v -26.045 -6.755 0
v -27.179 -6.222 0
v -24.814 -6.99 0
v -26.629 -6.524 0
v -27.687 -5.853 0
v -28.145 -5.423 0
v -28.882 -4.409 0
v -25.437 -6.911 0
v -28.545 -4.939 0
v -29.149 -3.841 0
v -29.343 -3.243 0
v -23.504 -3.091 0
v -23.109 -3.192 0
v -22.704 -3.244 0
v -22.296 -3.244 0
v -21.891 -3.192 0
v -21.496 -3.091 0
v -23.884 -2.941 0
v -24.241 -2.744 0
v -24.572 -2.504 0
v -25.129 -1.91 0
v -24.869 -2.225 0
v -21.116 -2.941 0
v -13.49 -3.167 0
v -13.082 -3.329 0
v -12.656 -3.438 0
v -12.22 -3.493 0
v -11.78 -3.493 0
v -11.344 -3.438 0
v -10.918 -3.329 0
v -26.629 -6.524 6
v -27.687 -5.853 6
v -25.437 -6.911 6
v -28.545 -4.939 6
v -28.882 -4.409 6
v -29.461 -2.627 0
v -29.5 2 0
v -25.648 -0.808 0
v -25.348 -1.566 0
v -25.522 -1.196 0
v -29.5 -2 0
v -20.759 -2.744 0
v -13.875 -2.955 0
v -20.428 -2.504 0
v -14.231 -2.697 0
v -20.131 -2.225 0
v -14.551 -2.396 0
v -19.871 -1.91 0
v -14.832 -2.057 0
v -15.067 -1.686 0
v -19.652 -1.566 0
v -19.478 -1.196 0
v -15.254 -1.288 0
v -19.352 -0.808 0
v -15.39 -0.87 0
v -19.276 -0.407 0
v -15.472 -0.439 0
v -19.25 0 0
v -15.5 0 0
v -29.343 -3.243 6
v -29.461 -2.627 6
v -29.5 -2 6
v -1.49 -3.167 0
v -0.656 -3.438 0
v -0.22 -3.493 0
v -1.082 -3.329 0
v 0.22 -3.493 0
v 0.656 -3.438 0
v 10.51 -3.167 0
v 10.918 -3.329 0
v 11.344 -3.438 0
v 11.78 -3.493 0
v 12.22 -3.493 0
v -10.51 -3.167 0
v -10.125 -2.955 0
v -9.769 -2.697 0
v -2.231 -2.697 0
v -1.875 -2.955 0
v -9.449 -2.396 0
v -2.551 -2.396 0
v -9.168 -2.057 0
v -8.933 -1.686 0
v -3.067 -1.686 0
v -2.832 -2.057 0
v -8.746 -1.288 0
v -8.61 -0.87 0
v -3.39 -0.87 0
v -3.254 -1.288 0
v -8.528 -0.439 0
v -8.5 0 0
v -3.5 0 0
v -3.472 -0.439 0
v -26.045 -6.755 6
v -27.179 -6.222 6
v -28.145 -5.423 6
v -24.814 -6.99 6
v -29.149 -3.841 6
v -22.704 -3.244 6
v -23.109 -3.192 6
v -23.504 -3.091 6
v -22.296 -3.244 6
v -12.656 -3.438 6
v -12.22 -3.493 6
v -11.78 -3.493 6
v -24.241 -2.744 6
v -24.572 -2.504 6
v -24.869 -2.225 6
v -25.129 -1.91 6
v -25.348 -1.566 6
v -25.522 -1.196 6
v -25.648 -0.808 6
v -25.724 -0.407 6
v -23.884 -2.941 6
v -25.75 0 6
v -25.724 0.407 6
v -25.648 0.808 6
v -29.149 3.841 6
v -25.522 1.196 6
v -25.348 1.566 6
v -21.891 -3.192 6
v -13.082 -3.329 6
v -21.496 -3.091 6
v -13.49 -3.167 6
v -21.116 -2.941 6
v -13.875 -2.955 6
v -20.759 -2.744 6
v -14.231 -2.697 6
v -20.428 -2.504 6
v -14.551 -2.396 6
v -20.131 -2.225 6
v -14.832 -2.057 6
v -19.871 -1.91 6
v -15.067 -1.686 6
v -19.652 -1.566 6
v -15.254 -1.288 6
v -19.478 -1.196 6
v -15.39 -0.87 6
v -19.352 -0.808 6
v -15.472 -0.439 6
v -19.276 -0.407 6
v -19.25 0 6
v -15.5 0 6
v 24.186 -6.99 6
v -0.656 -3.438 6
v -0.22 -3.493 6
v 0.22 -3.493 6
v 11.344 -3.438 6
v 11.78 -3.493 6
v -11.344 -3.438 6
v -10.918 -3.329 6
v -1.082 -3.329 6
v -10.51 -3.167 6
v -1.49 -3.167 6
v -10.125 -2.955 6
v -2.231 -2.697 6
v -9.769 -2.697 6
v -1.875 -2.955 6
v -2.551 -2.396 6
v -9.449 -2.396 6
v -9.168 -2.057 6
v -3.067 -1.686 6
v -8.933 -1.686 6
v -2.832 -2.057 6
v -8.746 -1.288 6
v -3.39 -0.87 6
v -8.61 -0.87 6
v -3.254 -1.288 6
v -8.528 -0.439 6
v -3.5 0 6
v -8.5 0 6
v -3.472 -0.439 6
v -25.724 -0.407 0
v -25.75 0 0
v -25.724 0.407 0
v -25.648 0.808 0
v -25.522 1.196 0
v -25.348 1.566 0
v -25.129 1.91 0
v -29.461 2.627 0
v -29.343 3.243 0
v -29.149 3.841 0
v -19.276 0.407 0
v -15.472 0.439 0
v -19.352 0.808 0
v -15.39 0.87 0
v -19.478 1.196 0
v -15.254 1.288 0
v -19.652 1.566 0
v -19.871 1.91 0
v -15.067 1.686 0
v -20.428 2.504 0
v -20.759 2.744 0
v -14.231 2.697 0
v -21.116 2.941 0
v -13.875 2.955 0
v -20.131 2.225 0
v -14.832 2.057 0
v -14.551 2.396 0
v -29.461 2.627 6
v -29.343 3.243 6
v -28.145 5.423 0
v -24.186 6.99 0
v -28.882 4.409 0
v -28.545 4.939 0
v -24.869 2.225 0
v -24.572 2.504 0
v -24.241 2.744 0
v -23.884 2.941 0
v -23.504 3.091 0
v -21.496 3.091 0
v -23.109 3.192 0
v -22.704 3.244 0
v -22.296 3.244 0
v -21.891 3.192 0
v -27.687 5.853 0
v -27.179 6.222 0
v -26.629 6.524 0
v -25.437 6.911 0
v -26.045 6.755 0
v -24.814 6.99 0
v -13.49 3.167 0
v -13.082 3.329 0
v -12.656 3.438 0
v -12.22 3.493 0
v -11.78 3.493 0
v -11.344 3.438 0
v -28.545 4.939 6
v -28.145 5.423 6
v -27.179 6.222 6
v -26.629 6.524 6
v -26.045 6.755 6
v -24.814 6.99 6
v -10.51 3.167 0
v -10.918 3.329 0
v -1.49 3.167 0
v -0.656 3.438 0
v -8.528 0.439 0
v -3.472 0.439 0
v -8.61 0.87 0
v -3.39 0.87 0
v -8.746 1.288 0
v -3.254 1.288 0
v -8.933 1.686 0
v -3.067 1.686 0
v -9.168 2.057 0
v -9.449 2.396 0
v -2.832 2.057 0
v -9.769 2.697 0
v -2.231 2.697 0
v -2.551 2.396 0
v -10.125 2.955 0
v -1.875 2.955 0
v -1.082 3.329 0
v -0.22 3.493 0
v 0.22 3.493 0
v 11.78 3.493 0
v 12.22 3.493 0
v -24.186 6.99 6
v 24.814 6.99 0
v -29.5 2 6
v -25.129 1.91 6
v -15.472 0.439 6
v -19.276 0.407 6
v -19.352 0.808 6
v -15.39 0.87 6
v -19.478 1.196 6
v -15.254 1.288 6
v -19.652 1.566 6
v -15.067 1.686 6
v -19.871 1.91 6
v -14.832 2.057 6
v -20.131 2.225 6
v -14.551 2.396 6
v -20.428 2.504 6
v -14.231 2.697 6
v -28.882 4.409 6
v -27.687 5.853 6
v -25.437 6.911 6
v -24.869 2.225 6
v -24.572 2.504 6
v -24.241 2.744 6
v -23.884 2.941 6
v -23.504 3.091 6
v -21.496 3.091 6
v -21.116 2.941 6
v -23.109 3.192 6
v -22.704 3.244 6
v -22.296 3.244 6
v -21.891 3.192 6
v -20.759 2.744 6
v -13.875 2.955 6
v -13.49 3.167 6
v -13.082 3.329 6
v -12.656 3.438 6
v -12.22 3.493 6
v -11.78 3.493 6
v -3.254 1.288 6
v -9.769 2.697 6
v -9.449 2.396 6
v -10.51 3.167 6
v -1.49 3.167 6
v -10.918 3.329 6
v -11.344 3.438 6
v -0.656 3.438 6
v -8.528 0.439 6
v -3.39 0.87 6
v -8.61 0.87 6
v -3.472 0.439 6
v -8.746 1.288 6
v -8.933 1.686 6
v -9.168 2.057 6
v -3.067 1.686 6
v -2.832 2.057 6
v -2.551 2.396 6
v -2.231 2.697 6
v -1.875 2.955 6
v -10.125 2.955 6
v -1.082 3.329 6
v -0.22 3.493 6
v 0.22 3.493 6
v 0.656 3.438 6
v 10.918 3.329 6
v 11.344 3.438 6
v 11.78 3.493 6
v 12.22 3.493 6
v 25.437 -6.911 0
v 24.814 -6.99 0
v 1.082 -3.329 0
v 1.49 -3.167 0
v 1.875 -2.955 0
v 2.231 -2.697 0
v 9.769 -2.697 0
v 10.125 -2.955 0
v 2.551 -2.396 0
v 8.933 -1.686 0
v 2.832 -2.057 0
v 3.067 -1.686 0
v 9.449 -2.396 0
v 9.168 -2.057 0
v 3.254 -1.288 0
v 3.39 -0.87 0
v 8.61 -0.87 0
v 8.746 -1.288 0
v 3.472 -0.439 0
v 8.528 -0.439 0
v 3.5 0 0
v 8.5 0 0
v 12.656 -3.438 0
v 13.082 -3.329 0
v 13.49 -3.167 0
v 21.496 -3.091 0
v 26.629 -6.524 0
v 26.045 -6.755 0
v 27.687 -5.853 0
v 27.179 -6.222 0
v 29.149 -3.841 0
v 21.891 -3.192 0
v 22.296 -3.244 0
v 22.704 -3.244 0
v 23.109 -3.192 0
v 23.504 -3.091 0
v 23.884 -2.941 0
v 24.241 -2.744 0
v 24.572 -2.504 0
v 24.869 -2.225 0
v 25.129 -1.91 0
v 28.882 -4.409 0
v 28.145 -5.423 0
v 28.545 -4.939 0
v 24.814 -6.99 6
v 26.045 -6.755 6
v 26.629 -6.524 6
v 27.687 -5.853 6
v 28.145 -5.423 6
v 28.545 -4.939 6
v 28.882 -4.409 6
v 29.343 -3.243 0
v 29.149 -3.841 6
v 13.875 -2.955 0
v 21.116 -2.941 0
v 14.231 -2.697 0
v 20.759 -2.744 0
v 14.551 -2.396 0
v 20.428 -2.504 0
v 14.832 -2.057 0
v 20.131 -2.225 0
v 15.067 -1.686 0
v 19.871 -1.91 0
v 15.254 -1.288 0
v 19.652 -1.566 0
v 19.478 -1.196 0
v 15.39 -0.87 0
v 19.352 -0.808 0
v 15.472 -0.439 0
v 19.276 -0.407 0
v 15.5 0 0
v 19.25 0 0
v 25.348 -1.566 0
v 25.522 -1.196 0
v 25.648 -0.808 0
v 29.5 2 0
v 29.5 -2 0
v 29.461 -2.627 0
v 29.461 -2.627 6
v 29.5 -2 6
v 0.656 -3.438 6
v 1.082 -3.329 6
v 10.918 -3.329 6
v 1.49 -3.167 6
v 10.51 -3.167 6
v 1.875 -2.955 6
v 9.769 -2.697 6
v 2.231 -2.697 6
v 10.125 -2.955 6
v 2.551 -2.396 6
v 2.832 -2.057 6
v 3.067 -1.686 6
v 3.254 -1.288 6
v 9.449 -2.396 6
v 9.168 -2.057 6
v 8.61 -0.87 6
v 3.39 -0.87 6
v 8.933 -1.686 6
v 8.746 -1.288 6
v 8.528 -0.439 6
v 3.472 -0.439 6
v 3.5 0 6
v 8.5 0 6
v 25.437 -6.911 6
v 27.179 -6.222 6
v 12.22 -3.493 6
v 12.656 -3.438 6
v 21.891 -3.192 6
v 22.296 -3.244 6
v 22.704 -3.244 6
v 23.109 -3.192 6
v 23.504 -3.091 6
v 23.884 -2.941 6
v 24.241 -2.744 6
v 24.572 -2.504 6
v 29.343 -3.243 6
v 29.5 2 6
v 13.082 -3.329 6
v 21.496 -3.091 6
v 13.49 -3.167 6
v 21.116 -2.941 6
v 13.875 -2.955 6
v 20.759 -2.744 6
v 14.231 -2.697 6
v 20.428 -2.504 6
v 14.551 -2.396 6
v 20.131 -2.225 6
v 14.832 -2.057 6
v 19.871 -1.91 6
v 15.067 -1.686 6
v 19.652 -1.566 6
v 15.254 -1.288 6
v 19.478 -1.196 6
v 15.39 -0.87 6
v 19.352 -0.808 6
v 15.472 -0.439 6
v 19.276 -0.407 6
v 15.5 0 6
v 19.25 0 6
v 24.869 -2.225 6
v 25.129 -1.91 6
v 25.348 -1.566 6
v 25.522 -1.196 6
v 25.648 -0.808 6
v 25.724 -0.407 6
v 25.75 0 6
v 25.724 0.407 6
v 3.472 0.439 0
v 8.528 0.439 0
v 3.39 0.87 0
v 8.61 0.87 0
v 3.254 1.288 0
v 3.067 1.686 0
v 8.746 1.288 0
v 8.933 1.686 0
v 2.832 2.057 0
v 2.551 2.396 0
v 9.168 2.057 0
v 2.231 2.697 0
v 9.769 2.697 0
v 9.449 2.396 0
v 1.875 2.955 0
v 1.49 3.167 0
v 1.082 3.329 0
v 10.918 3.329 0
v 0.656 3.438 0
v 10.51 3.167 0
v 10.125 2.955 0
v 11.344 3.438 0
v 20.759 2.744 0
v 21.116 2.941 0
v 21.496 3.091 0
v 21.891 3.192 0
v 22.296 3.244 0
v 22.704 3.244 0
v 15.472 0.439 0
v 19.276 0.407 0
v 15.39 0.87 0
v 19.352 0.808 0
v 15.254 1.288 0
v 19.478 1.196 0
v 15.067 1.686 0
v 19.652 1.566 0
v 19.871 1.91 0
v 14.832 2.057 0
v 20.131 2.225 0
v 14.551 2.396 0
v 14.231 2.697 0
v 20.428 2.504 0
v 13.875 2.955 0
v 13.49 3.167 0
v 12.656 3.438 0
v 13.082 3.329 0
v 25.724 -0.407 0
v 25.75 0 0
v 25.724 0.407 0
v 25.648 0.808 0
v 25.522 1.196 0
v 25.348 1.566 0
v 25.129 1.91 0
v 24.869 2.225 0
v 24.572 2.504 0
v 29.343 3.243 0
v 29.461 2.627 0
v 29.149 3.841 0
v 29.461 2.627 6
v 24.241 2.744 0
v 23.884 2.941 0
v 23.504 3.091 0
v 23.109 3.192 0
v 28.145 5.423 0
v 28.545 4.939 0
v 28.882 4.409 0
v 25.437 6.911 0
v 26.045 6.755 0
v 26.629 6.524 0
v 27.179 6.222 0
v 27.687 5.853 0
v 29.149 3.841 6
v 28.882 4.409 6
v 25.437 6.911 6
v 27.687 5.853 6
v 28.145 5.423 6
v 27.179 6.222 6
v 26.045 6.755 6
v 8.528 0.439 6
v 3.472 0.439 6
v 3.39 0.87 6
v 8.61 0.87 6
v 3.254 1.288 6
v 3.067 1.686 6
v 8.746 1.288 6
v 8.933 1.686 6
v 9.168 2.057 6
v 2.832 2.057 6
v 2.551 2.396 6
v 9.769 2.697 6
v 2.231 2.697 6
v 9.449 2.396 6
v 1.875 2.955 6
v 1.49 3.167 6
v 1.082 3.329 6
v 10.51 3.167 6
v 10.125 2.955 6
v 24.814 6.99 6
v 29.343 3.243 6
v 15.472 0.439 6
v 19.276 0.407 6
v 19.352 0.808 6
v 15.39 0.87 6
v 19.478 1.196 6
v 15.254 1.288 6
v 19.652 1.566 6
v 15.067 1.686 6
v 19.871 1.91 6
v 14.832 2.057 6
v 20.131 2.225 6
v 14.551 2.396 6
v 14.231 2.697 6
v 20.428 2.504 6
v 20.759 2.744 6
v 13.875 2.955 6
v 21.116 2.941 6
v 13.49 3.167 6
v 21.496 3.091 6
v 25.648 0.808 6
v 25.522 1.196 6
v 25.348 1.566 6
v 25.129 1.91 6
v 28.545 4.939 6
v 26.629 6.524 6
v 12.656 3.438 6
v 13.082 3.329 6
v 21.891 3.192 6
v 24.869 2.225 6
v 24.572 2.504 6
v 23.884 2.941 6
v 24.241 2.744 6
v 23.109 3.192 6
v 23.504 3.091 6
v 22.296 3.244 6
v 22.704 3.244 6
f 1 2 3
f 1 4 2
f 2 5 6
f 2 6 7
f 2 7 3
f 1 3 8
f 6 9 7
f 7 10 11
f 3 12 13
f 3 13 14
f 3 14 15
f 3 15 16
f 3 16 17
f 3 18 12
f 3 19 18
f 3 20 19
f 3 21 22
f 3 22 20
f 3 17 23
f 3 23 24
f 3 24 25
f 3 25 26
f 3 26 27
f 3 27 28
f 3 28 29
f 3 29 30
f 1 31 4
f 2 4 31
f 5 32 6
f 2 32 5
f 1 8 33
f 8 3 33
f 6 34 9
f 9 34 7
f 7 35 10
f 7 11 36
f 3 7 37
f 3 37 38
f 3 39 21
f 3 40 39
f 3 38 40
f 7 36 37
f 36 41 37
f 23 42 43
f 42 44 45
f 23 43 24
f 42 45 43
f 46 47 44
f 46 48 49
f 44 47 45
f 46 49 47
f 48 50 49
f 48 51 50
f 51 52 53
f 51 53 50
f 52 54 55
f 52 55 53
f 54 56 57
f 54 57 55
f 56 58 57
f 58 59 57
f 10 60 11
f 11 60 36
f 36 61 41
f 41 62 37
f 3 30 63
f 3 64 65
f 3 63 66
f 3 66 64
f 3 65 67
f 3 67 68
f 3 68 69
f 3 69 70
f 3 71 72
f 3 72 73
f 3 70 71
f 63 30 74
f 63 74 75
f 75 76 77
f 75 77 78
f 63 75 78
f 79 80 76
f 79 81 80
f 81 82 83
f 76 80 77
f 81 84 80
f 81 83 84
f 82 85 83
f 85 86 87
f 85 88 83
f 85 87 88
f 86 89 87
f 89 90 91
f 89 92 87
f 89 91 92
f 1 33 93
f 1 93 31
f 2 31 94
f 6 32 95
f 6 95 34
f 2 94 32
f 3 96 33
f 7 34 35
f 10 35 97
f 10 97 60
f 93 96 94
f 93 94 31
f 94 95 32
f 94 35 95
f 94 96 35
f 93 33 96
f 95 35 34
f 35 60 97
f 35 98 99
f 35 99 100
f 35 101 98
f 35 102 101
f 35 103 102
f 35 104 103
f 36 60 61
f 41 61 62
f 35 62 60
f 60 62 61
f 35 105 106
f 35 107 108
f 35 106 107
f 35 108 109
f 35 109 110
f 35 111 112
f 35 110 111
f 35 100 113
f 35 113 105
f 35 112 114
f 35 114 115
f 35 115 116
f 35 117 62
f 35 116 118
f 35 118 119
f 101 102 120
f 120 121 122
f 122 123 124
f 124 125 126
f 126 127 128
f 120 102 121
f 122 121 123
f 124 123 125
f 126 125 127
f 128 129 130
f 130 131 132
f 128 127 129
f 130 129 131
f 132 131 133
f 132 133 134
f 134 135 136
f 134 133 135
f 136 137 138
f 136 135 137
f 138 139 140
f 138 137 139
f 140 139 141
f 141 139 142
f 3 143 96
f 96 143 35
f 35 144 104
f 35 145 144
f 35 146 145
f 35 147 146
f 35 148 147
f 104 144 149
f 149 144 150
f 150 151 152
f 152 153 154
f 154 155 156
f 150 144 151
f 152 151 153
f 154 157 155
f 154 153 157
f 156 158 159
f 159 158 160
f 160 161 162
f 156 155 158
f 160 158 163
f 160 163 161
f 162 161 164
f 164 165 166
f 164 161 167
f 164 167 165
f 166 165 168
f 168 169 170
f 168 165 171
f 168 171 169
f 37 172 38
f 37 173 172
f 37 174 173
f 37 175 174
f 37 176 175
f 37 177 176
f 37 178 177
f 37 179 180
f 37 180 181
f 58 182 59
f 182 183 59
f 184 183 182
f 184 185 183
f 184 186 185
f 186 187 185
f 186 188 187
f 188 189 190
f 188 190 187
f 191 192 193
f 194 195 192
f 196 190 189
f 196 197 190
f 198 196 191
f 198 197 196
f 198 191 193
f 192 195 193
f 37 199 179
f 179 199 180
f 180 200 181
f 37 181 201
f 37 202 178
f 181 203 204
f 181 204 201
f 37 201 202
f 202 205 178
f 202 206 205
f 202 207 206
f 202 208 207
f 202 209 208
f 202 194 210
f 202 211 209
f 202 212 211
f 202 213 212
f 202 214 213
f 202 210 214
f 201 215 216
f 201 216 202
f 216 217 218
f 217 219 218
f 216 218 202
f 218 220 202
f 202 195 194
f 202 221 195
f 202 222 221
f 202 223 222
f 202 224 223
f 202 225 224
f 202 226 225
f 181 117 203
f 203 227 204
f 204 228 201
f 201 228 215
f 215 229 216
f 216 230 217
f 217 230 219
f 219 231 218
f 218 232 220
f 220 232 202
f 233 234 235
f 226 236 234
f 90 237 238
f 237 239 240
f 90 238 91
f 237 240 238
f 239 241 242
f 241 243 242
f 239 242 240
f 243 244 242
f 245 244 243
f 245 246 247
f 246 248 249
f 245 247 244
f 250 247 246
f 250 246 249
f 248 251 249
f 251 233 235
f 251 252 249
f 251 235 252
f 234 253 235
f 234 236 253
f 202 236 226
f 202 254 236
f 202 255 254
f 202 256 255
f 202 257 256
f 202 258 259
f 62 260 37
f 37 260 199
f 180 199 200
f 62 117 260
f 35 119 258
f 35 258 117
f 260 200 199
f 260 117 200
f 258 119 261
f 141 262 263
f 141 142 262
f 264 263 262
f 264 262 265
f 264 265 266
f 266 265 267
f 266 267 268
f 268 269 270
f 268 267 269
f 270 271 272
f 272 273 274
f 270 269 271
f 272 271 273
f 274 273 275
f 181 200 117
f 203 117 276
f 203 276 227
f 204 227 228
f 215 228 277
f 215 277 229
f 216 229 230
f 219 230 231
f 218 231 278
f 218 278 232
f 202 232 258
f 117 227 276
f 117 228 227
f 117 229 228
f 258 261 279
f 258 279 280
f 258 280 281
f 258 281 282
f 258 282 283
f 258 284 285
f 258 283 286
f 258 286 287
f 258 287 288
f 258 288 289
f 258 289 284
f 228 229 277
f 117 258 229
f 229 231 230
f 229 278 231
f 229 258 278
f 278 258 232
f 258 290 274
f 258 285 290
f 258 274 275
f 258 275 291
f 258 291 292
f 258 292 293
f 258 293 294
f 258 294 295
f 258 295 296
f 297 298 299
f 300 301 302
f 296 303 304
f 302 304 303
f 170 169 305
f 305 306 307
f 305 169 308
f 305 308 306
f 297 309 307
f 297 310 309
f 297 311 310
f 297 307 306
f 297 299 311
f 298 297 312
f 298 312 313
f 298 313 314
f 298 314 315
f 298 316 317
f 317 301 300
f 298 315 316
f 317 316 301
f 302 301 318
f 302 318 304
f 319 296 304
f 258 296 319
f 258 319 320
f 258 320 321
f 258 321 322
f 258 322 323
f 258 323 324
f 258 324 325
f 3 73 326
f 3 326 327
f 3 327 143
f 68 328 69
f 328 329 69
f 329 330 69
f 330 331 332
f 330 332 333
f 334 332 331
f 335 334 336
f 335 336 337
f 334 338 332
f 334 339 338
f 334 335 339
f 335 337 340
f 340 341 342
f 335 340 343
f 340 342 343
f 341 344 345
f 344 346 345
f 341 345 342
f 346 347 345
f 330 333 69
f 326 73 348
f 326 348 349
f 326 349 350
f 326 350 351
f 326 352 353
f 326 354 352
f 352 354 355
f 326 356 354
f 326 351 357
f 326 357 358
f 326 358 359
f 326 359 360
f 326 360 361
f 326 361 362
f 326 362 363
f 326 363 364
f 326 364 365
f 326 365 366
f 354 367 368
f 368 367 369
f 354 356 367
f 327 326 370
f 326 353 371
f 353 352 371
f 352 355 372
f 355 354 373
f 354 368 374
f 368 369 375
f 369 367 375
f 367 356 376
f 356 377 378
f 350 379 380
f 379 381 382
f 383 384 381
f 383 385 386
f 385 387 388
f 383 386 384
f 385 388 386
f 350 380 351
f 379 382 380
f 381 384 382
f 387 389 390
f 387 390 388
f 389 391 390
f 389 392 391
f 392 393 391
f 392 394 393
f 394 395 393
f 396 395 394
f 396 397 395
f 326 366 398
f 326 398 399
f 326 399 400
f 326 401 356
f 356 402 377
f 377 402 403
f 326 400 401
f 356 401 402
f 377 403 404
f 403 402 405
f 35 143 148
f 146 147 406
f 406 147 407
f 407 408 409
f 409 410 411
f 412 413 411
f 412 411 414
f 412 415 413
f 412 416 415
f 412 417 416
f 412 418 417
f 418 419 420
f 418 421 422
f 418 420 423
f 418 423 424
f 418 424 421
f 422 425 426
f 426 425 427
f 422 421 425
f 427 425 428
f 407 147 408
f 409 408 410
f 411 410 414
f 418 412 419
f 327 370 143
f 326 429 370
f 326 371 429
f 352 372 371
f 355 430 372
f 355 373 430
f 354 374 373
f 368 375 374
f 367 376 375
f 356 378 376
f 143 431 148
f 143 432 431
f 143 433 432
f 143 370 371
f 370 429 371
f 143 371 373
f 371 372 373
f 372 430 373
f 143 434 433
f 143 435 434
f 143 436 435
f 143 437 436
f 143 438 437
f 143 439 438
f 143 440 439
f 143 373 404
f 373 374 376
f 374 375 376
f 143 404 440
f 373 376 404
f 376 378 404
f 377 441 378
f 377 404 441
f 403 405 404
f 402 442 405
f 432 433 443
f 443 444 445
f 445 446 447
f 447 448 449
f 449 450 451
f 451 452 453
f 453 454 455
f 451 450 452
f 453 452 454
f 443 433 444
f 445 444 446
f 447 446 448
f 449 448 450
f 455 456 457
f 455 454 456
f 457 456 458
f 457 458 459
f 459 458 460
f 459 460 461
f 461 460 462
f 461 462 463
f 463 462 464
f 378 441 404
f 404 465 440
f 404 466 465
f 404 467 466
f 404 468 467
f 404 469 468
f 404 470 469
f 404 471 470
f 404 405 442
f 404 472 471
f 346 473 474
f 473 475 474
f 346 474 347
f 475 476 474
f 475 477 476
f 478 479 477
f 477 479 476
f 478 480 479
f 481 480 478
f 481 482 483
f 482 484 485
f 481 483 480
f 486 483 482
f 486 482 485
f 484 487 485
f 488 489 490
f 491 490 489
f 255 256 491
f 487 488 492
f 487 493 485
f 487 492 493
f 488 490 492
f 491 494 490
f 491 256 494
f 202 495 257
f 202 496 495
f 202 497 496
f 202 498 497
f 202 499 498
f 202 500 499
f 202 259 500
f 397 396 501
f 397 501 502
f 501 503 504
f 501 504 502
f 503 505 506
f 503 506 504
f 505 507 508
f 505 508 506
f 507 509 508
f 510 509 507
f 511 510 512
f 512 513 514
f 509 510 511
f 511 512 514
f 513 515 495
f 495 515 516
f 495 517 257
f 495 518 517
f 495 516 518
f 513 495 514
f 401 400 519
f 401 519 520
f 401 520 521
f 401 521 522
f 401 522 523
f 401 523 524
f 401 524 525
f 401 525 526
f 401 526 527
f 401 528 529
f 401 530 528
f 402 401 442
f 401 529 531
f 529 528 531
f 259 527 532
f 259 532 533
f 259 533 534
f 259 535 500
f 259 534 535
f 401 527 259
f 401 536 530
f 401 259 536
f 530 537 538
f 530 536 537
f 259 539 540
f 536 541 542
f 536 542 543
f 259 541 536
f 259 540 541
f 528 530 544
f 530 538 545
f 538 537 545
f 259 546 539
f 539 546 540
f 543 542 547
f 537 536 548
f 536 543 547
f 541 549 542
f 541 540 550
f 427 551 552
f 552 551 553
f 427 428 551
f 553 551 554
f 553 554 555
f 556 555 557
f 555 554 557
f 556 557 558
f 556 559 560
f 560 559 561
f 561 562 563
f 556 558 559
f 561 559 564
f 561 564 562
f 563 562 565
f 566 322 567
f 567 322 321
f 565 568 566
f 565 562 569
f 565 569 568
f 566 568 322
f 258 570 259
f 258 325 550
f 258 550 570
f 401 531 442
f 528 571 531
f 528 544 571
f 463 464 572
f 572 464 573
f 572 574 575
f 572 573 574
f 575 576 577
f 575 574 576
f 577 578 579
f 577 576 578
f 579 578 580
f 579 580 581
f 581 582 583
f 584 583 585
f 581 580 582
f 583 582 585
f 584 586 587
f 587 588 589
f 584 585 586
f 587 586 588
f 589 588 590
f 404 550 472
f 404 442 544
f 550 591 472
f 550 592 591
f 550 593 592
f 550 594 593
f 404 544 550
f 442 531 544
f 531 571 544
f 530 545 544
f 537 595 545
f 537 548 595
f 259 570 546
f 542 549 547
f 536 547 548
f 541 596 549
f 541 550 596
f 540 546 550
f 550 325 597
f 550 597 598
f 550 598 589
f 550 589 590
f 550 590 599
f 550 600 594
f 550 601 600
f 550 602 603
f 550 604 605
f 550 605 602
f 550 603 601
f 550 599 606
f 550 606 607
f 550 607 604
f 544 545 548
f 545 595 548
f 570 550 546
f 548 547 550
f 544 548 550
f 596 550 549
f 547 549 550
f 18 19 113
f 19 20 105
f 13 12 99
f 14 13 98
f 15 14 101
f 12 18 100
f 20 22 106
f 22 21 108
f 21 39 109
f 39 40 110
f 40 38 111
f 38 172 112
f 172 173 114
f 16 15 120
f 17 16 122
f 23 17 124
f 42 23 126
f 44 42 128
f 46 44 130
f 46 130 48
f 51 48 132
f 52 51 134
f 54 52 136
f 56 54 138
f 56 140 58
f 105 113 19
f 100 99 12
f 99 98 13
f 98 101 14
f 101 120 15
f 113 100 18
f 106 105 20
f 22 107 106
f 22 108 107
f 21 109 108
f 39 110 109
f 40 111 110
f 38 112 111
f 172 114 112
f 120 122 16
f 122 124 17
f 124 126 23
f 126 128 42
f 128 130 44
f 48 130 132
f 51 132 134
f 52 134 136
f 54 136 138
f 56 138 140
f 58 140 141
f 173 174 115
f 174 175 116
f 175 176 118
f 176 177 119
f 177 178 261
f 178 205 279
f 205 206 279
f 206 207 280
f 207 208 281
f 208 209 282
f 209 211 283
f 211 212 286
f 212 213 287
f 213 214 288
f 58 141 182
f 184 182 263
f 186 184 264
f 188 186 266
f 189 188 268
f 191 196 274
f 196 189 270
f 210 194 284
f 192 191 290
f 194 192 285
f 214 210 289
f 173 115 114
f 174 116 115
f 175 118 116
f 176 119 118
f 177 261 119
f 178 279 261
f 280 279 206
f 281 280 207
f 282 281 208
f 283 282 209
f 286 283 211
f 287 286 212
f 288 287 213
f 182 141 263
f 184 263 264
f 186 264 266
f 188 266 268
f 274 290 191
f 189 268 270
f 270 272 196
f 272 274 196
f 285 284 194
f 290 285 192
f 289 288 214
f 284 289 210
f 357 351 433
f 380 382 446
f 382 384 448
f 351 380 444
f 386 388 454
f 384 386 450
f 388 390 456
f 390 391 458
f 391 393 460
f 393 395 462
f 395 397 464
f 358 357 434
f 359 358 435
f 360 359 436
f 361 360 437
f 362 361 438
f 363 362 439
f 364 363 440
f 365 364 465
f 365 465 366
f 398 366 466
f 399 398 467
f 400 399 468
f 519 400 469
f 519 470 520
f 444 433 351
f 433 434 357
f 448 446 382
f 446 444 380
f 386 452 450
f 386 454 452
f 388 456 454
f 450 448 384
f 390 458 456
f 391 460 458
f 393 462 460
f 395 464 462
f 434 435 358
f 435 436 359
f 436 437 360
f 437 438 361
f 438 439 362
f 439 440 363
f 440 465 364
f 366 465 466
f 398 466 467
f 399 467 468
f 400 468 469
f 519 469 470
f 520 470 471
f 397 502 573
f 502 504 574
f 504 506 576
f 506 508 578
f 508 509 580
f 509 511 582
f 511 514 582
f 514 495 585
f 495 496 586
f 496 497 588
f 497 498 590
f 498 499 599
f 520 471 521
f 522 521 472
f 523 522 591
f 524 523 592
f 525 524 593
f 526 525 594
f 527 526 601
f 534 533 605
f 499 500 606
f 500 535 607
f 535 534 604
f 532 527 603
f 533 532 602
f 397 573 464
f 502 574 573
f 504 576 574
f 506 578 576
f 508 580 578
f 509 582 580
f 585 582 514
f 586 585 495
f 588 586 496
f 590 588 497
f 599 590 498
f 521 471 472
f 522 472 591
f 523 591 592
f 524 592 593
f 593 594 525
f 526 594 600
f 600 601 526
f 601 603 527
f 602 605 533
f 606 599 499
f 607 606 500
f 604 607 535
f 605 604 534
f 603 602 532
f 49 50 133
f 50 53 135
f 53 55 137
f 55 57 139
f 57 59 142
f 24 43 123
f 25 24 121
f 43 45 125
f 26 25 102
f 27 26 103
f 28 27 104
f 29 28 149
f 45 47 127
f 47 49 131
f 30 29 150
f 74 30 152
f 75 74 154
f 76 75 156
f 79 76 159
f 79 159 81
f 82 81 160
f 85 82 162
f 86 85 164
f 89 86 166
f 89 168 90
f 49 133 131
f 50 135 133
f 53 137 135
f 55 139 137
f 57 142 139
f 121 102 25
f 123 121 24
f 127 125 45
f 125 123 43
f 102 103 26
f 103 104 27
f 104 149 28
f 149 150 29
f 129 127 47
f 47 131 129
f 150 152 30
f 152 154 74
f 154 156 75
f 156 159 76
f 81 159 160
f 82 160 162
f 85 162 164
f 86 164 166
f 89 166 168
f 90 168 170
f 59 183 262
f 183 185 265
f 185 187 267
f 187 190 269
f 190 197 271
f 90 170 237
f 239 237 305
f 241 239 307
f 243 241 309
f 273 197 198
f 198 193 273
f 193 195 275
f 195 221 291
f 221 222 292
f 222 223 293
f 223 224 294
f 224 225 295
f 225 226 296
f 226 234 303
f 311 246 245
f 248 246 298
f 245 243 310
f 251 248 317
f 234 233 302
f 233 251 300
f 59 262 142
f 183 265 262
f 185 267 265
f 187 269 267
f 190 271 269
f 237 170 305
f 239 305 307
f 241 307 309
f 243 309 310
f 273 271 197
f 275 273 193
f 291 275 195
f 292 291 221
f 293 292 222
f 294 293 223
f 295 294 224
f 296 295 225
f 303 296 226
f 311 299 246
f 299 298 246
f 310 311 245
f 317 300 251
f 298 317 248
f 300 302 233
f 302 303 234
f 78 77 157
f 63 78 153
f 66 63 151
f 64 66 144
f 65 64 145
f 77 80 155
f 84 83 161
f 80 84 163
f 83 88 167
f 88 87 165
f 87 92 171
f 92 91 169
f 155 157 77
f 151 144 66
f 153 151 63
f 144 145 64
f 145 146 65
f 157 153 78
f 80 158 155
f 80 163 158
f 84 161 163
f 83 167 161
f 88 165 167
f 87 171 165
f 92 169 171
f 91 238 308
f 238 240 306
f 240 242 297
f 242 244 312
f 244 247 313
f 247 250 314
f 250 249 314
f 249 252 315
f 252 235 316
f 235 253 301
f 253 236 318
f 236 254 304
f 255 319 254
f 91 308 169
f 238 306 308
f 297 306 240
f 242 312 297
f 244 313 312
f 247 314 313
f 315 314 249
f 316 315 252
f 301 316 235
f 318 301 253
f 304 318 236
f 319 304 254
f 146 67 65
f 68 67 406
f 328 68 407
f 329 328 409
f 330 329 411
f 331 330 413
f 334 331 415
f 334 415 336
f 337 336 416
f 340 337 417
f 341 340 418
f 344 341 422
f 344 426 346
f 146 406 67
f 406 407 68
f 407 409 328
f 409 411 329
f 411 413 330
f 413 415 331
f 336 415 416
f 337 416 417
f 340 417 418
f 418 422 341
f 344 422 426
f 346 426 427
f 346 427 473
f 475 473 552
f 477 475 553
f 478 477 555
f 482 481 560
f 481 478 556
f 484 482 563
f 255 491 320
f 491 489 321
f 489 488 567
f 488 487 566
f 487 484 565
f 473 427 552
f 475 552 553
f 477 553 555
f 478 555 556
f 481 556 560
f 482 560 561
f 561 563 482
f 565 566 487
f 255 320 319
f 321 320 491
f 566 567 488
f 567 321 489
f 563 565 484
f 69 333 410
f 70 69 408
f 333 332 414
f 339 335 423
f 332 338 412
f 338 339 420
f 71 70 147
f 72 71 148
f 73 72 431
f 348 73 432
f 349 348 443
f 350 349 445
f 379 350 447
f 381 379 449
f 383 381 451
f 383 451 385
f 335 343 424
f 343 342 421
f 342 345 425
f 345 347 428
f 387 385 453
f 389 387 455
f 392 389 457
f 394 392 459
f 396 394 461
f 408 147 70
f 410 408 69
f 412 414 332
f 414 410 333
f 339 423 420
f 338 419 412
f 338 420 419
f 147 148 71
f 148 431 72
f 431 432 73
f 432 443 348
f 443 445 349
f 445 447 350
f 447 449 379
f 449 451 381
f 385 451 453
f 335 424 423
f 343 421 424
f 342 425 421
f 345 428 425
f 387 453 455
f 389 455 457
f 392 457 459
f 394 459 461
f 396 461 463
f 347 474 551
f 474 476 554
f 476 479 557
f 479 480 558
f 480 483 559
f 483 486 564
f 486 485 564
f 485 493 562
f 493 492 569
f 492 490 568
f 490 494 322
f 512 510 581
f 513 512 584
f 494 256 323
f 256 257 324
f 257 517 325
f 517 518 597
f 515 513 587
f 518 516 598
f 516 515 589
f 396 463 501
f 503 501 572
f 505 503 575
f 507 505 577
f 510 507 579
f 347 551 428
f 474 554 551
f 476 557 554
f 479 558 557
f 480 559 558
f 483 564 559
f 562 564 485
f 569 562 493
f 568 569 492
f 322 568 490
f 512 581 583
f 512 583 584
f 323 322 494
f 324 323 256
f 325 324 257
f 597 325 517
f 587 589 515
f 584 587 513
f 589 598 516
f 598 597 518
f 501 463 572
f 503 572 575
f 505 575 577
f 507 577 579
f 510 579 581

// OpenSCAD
$fn = 50;

difference() {
	union() {
		hull() {
			translate(v = [-24.5, 2.0, 0]) {
				cylinder(h = 6, r = 5);
			}
			translate(v = [24.5, 2.0, 0]) {
				cylinder(h = 6, r = 5);
			}
			translate(v = [-24.5, -2.0, 0]) {
				cylinder(h = 6, r = 5);
			}
			translate(v = [24.5, -2.0, 0]) {
				cylinder(h = 6, r = 5);
			}
		}
	}
	union() {
		translate(v = [-22.5, 0.0, 0]) {
			cylinder(h = 6, r = 3.25);
		}
		translate(v = [22.5, 0.0, 0]) {
			cylinder(h = 6, r = 3.25);
		}
		translate(v = [-12.0, 0, 0.0]) {
			cylinder(h = 6, r = 3.5);
		}
		cylinder(h = 6, r = 3.5);
		translate(v = [12.0, 0, 0.0]) {
			cylinder(h = 6, r = 3.5);
		}
	}
}
